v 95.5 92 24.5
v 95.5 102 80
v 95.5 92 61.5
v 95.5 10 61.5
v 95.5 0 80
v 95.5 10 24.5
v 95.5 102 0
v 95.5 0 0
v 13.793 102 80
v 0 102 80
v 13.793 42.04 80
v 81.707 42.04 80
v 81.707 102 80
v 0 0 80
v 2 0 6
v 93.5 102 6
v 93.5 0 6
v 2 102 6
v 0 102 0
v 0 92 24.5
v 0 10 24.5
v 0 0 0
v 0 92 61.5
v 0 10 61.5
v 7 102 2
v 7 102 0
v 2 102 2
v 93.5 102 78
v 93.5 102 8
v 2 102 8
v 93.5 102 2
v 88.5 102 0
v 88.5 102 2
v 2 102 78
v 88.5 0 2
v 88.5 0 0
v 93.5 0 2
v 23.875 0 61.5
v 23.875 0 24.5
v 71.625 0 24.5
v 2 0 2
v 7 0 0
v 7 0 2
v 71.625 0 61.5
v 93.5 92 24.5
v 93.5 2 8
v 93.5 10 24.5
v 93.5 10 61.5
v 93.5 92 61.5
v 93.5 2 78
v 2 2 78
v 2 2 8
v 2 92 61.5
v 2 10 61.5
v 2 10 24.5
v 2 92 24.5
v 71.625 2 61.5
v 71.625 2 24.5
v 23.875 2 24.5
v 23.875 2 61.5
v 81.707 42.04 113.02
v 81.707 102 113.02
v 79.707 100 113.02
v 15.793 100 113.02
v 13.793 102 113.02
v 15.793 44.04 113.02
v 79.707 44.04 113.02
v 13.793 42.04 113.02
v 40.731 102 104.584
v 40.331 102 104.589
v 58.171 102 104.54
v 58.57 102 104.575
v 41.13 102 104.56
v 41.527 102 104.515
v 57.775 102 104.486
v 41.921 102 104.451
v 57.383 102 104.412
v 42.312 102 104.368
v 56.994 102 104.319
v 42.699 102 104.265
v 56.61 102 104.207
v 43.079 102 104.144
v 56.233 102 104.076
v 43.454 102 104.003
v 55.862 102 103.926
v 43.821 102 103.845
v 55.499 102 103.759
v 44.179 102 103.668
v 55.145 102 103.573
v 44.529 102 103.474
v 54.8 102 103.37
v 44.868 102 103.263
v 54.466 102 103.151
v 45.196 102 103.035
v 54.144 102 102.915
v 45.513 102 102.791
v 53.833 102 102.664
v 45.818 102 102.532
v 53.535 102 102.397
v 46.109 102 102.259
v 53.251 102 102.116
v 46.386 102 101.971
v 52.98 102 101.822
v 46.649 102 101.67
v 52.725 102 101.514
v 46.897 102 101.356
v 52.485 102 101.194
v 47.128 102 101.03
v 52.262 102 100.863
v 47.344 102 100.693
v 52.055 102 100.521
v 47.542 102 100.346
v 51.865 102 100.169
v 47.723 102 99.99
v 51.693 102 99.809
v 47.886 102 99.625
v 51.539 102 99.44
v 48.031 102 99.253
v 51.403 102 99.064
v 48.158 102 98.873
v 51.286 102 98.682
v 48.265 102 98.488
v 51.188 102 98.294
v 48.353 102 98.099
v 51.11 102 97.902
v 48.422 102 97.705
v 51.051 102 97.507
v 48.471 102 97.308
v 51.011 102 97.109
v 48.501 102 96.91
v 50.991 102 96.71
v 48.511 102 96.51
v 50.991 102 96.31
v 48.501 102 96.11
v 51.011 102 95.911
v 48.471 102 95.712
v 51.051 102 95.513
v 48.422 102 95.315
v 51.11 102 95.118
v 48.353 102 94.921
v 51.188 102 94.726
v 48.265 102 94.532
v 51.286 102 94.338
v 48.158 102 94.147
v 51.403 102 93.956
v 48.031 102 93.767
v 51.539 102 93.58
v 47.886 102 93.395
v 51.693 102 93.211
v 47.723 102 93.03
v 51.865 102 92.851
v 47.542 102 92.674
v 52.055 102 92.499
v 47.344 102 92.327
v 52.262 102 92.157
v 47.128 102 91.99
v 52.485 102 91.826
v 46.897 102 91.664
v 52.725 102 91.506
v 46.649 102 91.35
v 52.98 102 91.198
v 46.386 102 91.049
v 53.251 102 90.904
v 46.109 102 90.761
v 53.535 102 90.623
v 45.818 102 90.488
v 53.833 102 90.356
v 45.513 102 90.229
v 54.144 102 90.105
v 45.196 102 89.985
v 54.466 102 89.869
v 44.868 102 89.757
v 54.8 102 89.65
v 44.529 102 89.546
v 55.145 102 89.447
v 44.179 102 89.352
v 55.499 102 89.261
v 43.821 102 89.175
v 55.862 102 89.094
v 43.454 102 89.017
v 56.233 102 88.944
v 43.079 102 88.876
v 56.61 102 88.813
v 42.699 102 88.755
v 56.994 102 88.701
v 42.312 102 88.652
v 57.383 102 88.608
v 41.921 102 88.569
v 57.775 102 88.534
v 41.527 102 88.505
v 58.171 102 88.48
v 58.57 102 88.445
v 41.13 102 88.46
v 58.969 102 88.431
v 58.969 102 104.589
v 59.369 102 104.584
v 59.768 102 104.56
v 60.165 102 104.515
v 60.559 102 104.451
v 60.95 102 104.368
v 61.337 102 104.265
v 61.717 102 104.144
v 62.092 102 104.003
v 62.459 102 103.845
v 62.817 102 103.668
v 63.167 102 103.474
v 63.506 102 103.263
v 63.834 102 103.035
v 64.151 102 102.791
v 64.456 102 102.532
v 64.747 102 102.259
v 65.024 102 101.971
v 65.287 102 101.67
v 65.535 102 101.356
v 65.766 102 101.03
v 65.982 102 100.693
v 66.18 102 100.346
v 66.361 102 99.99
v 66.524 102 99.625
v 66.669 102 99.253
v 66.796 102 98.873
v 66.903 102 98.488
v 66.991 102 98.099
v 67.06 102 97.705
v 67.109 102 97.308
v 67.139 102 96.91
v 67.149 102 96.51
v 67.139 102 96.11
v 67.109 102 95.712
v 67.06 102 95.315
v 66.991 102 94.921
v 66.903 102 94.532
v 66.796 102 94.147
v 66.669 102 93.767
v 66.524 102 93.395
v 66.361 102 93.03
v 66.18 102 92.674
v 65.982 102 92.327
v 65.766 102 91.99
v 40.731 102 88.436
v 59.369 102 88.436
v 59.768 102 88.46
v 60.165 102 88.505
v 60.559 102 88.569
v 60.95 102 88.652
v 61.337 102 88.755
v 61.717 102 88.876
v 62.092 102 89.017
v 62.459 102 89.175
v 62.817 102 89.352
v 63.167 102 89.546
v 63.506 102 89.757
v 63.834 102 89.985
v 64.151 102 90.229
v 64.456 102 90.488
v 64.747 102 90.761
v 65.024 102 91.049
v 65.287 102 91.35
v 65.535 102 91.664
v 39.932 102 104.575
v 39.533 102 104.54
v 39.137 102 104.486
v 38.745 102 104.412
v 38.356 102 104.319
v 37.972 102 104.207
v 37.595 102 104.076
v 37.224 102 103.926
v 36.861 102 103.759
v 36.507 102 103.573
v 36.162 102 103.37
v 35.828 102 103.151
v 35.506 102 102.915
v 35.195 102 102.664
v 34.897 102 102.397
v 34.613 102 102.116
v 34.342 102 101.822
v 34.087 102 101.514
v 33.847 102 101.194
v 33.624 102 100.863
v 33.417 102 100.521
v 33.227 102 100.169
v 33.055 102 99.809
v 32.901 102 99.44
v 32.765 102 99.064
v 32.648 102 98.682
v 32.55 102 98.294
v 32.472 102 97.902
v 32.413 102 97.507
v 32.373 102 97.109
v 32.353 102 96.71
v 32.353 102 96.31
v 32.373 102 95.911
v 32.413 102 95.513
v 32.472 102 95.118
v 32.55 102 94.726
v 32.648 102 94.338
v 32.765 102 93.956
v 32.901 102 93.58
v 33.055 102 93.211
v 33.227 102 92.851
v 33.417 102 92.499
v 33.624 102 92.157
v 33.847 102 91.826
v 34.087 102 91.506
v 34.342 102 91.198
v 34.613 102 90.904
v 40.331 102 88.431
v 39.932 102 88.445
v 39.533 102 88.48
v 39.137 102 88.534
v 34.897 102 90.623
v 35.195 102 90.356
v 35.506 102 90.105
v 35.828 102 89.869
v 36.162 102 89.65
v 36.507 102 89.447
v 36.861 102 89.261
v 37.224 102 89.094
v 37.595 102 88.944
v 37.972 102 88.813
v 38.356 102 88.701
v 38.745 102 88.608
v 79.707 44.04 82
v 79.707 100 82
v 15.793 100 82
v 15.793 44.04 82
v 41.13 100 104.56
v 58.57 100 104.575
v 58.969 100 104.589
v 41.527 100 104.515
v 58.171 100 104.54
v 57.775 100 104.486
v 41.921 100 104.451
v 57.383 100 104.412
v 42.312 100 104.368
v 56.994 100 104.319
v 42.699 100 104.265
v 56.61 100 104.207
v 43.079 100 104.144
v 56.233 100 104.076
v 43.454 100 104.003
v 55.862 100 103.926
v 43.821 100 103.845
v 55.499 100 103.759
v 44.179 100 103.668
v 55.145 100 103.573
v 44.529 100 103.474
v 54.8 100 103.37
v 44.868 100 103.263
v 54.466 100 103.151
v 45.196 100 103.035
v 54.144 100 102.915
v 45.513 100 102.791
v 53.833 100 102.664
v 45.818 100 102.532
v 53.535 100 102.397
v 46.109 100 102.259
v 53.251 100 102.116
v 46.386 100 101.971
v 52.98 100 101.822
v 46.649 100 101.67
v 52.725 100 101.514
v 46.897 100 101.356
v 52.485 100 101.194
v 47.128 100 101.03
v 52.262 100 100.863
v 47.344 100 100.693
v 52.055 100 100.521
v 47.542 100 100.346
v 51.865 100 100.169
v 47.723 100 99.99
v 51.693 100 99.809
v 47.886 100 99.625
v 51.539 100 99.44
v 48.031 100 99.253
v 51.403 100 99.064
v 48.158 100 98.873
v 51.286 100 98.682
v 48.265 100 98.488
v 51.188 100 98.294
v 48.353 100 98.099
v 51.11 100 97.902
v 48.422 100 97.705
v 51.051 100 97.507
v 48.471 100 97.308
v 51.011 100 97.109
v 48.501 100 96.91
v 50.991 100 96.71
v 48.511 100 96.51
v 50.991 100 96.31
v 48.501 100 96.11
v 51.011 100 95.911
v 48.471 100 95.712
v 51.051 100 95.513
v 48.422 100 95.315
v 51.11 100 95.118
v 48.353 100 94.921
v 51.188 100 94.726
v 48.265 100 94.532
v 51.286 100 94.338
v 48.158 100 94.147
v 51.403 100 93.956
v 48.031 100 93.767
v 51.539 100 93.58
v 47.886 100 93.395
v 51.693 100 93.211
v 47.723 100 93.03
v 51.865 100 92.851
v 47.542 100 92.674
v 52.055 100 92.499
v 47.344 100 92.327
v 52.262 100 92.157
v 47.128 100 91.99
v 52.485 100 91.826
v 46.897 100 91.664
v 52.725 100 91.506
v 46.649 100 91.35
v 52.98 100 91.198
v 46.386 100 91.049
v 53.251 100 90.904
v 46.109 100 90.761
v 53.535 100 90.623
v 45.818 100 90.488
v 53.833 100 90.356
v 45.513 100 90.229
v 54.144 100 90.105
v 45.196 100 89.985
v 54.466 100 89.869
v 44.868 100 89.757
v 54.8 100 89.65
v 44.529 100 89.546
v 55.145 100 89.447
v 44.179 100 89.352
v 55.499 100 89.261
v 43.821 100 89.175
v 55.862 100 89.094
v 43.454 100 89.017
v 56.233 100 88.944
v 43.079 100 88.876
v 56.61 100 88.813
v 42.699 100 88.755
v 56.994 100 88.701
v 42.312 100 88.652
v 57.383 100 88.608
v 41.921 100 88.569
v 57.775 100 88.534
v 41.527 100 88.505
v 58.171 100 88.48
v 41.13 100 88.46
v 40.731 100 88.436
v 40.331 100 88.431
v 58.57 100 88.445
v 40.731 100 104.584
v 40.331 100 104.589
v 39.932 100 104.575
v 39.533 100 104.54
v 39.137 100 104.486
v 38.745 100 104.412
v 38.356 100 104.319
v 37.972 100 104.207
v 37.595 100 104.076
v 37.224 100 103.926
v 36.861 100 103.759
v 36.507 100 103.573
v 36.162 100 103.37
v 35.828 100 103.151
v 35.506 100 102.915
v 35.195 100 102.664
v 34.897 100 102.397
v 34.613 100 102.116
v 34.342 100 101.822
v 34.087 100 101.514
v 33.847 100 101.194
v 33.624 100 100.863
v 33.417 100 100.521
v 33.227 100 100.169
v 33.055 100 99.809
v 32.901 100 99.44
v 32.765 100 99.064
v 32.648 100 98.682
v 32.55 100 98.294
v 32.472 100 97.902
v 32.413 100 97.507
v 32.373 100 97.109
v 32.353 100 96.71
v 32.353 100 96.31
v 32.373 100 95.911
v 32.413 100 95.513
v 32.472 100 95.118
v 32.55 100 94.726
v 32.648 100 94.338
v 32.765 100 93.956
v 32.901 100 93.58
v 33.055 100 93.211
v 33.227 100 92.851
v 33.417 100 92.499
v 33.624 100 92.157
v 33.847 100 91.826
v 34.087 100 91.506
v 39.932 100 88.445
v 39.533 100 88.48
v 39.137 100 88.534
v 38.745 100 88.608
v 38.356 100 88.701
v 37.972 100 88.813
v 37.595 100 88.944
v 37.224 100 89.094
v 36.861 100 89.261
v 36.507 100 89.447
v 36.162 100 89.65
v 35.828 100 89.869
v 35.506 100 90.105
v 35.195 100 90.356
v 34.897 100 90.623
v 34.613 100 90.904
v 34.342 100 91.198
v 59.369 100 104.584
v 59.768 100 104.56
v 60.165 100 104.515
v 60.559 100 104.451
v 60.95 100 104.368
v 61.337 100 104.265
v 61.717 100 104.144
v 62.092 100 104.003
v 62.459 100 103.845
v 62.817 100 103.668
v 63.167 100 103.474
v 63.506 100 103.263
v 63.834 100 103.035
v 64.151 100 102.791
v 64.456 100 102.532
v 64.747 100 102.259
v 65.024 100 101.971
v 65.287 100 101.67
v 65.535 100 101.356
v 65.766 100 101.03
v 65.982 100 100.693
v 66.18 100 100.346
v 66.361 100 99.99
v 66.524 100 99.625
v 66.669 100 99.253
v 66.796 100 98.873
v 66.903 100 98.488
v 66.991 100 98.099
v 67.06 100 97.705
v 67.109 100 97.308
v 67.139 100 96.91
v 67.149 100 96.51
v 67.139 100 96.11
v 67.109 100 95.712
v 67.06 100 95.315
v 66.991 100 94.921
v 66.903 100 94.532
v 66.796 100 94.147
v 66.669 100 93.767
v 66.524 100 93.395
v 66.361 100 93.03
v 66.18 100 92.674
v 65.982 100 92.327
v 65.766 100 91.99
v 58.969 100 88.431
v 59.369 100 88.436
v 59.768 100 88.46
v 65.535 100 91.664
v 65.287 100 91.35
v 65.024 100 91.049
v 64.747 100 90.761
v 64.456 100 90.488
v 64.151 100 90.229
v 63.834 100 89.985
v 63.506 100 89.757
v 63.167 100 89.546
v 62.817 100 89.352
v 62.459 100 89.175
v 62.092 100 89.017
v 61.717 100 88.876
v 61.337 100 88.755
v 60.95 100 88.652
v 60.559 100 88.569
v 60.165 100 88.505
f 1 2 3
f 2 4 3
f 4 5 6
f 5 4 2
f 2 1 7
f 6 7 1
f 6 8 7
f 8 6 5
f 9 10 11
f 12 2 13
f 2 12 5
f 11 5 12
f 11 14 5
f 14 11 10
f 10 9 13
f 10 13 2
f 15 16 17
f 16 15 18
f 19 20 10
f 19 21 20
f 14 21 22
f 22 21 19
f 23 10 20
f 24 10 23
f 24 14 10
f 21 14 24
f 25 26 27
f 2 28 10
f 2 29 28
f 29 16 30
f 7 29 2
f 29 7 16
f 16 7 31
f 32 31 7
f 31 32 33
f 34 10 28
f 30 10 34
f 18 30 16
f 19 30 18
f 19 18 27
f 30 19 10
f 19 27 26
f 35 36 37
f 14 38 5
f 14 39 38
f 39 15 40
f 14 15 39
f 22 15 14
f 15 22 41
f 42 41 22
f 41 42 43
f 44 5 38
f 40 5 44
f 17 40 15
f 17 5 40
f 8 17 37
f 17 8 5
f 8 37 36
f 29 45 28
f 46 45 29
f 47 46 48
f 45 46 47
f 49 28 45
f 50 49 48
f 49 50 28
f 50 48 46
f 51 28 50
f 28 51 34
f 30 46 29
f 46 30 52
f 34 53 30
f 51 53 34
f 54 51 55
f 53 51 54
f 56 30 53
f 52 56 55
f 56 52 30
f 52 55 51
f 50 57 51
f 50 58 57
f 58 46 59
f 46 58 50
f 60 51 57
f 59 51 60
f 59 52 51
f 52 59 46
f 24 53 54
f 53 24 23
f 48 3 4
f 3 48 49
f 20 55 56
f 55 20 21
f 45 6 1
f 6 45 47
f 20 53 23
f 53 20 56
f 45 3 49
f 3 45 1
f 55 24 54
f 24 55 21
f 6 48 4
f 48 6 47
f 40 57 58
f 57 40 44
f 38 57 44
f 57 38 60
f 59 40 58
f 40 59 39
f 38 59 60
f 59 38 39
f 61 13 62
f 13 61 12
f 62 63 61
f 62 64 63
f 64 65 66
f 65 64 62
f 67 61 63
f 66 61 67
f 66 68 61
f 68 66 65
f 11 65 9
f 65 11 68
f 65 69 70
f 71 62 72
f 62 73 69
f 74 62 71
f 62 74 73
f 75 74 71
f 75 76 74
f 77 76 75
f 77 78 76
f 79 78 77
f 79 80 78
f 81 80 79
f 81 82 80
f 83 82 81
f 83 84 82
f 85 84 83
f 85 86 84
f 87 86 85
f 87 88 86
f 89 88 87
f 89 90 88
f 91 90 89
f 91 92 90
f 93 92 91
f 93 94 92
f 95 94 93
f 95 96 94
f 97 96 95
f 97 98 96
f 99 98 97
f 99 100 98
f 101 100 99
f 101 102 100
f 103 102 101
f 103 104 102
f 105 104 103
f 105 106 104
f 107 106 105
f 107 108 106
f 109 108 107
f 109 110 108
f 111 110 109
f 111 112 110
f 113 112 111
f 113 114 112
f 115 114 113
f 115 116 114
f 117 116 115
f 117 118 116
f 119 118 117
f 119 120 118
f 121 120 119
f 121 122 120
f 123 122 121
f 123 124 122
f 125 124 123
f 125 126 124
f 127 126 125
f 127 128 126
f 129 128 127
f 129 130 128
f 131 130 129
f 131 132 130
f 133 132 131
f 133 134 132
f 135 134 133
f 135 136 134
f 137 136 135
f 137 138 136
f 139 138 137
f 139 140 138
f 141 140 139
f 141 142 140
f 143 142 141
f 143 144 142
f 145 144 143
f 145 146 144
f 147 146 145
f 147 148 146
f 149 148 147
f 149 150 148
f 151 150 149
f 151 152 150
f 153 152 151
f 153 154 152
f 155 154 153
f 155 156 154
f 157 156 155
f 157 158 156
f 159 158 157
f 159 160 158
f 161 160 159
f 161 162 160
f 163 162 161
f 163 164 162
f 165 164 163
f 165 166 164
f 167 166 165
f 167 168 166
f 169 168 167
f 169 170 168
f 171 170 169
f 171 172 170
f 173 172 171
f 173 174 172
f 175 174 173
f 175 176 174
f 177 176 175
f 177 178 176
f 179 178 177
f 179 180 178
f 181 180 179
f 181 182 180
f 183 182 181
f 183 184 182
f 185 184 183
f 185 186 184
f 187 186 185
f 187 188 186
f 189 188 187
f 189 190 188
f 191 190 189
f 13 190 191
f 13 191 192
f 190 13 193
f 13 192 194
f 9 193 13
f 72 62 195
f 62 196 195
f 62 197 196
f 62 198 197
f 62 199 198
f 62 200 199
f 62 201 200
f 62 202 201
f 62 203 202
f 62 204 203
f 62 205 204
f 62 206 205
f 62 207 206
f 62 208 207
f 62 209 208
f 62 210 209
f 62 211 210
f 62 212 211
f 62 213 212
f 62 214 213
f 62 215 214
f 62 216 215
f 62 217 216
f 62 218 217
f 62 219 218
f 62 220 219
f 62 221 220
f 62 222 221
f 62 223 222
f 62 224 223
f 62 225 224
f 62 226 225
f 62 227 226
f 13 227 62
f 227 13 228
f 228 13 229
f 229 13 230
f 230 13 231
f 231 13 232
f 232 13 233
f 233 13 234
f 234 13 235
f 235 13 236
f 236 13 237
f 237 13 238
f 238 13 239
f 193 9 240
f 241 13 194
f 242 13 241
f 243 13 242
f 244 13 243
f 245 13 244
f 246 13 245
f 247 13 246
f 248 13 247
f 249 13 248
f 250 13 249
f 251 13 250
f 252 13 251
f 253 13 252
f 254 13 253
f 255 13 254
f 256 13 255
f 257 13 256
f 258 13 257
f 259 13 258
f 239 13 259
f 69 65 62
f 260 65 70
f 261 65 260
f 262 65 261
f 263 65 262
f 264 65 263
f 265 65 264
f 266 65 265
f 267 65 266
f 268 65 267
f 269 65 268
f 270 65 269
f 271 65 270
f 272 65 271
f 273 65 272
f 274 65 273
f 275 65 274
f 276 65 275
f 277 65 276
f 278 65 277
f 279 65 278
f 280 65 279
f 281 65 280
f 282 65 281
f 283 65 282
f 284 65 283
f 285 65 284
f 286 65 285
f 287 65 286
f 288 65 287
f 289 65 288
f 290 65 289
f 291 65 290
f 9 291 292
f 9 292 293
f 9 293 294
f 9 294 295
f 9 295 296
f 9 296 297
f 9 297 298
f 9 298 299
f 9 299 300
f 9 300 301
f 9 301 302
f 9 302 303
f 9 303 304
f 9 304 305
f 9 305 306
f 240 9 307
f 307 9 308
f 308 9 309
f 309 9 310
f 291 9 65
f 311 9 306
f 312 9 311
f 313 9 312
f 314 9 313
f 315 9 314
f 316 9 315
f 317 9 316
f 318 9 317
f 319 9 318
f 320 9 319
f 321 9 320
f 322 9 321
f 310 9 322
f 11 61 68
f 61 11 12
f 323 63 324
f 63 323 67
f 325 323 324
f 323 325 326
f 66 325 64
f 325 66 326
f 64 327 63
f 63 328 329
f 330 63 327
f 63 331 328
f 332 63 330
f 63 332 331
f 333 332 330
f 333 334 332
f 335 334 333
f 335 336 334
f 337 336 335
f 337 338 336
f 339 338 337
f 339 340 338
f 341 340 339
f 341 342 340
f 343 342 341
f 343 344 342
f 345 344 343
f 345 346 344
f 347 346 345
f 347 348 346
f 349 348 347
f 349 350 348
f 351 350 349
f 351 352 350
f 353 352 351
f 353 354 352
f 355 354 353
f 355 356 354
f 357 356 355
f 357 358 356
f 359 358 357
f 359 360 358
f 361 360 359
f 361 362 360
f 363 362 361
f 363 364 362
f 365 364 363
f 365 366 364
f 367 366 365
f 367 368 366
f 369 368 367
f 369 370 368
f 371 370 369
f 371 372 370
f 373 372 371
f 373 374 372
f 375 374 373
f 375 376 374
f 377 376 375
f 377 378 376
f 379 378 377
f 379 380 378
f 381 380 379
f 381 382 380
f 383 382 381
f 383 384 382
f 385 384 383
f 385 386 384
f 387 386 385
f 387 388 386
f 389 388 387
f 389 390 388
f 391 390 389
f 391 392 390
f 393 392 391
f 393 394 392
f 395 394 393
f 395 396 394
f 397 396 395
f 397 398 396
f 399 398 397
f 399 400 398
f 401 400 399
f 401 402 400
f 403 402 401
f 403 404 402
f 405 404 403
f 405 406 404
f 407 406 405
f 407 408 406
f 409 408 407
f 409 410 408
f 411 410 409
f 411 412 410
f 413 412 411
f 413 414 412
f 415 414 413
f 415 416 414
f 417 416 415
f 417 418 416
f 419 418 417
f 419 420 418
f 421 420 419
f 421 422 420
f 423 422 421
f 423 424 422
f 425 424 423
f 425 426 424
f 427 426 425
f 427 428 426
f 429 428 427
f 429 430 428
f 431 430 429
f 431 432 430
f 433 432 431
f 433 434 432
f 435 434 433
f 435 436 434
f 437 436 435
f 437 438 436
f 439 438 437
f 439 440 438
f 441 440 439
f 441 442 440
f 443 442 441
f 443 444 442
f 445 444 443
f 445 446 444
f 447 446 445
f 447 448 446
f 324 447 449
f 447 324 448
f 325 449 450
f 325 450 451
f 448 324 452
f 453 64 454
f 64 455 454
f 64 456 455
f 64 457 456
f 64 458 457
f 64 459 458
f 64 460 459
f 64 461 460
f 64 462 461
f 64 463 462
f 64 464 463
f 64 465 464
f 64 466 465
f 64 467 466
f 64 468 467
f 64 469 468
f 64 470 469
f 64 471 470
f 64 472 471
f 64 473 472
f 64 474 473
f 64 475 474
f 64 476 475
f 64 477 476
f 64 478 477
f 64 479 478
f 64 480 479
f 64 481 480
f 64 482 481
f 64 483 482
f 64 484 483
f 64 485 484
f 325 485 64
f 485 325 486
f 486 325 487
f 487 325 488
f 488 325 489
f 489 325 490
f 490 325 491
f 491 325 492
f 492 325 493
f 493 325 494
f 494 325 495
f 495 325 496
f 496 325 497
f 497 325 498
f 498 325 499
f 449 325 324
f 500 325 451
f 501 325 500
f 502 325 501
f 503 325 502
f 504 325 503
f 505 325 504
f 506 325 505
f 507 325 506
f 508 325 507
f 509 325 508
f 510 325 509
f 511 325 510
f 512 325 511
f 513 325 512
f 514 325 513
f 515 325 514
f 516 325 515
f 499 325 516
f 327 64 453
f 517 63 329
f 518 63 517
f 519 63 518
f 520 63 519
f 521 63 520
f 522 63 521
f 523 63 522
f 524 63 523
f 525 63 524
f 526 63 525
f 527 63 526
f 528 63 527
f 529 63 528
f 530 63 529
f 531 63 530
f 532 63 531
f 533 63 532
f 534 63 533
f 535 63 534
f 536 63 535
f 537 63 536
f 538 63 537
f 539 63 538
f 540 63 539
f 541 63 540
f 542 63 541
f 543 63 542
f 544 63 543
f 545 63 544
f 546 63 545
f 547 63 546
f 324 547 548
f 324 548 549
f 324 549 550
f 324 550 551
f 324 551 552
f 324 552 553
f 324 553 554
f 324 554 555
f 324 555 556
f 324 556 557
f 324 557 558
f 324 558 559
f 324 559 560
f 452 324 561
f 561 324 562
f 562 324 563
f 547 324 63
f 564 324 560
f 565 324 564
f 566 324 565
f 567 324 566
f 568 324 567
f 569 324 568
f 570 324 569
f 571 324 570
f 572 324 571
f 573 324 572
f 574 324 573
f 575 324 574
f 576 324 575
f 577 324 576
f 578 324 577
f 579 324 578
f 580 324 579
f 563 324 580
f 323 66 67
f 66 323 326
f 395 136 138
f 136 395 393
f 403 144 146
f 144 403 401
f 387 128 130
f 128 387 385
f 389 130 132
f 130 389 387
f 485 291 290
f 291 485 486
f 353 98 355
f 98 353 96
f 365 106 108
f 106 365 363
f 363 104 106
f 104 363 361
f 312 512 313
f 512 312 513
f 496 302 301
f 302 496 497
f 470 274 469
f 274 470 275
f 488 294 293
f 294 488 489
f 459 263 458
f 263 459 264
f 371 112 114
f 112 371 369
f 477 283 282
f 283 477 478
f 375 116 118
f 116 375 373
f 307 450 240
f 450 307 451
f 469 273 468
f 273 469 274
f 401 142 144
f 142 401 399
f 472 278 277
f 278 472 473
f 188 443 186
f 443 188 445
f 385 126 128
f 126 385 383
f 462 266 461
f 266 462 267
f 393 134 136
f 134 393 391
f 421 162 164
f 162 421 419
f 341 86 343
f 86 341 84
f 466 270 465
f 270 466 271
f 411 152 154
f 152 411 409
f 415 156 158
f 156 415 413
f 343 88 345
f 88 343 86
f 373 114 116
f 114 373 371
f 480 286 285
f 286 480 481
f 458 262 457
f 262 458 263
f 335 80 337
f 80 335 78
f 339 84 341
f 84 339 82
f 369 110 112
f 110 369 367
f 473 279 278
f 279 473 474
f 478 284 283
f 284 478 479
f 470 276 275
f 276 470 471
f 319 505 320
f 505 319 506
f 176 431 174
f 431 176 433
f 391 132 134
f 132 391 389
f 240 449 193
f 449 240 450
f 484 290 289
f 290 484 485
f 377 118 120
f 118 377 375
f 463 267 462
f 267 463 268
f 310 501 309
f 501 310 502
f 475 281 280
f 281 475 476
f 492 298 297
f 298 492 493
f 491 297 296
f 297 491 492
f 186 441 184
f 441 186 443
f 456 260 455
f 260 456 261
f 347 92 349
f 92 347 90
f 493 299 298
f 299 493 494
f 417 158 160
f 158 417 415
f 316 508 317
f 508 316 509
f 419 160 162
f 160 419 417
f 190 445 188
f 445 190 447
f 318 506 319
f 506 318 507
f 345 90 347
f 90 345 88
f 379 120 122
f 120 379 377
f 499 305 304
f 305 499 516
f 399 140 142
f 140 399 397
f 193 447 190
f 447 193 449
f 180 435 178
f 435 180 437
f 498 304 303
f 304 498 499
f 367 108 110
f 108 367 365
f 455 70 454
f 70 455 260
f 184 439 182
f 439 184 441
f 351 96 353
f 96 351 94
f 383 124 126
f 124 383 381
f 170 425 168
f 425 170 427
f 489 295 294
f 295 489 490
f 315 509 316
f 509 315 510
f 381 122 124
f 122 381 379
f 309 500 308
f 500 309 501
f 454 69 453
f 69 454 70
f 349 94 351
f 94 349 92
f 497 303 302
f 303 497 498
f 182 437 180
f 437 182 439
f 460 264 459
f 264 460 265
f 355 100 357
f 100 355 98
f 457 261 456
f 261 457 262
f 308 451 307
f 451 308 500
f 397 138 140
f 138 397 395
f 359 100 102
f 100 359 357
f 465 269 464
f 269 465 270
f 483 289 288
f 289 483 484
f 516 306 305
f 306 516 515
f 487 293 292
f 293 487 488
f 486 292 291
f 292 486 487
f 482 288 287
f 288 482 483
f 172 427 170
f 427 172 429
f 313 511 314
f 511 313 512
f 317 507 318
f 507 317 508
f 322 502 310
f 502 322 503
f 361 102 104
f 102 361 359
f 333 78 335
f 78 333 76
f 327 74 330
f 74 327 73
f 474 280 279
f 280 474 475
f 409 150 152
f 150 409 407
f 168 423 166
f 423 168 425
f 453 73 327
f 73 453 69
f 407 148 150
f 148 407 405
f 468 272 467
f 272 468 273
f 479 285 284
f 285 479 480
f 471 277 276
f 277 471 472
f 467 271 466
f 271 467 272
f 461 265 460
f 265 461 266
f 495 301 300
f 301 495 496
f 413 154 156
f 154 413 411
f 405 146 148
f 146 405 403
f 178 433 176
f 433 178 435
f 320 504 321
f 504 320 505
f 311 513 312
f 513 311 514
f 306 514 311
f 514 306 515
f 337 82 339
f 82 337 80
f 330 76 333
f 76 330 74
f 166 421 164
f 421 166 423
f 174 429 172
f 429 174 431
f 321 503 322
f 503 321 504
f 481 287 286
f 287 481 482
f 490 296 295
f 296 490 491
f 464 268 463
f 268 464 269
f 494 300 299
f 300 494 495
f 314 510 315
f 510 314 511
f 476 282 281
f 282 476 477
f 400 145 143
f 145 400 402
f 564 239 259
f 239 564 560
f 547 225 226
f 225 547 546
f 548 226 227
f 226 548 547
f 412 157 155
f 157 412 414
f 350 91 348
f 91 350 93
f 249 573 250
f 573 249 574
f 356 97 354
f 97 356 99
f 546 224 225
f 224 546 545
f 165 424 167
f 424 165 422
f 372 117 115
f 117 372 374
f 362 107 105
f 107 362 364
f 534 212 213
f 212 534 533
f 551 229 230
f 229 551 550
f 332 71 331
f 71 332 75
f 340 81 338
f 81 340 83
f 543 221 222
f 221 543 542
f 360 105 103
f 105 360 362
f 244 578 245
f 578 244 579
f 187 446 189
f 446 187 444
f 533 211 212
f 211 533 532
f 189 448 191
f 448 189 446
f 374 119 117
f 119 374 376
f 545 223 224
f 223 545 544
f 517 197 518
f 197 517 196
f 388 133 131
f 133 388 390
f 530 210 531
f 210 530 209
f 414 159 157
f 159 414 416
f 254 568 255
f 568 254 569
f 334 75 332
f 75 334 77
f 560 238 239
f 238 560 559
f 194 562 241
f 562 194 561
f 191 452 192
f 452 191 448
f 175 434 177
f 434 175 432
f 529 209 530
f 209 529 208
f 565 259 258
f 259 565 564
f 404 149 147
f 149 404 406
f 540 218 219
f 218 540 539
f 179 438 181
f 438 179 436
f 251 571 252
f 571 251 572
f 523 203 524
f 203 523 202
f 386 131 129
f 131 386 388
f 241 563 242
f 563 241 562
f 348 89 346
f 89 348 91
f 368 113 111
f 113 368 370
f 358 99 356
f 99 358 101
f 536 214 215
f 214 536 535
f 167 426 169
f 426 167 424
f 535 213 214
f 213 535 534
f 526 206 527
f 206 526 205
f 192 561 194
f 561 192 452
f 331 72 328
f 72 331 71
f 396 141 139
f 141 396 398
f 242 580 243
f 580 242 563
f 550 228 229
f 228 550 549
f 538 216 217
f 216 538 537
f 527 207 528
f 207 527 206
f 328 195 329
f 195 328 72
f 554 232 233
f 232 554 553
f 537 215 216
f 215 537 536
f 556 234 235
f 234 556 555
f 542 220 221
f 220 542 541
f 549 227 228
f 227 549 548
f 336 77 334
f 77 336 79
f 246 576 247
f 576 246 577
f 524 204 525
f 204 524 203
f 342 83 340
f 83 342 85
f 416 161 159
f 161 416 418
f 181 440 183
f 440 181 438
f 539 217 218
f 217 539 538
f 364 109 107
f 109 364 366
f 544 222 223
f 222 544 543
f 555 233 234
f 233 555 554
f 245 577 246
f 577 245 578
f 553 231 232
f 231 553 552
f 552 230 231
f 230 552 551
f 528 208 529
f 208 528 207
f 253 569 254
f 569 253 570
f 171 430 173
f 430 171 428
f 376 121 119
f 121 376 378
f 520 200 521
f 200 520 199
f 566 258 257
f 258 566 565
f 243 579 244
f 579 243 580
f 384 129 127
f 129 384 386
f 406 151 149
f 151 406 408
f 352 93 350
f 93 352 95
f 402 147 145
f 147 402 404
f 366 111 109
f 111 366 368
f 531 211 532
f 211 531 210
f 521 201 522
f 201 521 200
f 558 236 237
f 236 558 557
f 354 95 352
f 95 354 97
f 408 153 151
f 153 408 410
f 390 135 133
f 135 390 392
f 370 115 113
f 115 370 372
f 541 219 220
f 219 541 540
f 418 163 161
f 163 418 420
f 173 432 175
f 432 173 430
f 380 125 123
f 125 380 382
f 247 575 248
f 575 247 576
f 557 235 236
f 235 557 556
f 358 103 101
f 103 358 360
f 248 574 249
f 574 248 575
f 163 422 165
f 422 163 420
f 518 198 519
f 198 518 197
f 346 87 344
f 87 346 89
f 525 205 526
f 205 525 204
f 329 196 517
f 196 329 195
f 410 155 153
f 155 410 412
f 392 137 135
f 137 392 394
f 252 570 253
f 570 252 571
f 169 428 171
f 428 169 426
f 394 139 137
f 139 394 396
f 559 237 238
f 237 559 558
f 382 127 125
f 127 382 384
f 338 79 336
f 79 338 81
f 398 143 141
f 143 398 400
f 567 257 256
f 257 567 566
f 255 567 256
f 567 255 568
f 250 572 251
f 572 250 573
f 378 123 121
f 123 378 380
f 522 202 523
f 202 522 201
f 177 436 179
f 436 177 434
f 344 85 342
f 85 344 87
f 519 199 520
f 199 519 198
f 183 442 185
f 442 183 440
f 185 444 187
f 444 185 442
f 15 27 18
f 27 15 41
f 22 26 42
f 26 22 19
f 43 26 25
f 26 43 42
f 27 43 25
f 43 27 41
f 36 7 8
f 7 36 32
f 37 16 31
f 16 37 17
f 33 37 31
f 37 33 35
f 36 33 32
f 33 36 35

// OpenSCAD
// file: engine_holders.scad
$fa=1;
$fs=0.4;

////////////////////////////////////////////////
module engine_holder_cutouts() {
    translate([-.03, 1,-.10])
    cube([.11, .45, .4 ]);

    translate([.73, 1,-.10])
    cube([.11, .45, .4 ]);

    translate([1.88,0,-.10])
    rotate([0,0,90])
    cube([.15, 1.9, .4]);
}
engine_holder_cutouts();
// file: robot_rail.scad
include <robot_settings.scad>
use <engine_holders.scad>

module robot_rail() {
    // rail
    translate([rail_gap, 0, rail_gap])
    cube([main_box_x - rail_gap * wall_thickness, rail_length, rail_thickness]);
}

translate([-20, 0, 0])
engine_holder_cutouts();
robot_rail();
// file: support_angle.scad
module support_angle(length = 150, width = 10, rot_vec = [90,0,0]) {
    rotate(rot_vec)
    difference() {
        cube([width, length, 4]);
        
        translate([10,-10,-1])
        rotate([0,0,45])
        cube([10, 30, 6]);
        
        translate([-10,length - 10,-1])
        rotate([0,0,-45])
        cube([10, 30, 6]);
    }
}
support_angle();
// file: robot_settings.scad
main_box_x = 95.5; // 96
main_box_y = 102;
main_box_z = 74; // 74.5
wall_thickness = 2;

rail_gap = 2;
rail_inset = 7;

rail_thickness = 3.9;
rail_length = 200;
// file: tobsun_parts.scad
$fa=1;
$fs=0.4;

////////////////////////////////////////////////
tobsun_shelf_width = 67.914;
tobsun_shelf_length = 59.96;
tobsun_shelf_height = 33.02;

cutout_radius = 8.08;
wall_thickness = 2;

module tobsun_tray() {
    difference() {
        translate([0, 0, 0])
        cube([tobsun_shelf_width, tobsun_shelf_length, tobsun_shelf_height]);
        
        // cut out
        translate([wall_thickness, wall_thickness, wall_thickness])
        cube([tobsun_shelf_width - 2 * wall_thickness, tobsun_shelf_length - 2 * wall_thickness, tobsun_shelf_height]);
        
        // tobsun tray wire cutout
        translate([tobsun_shelf_width / 3 + 4, tobsun_shelf_length + wall_thickness, tobsun_shelf_height / 2])
        rotate([90,0,0])
        cylinder(h=4 * wall_thickness, r=cutout_radius);
        
        // tobsun tray wire cutout
        translate([tobsun_shelf_width * 2/3, tobsun_shelf_length + wall_thickness, tobsun_shelf_height / 2])
        rotate([90,0,0])
        cylinder(h=4 * wall_thickness, r=cutout_radius);
    }
}
//tobsun_tray();

////////////////////////////////////////////////
module tobsun_chassis_cutout() {
    tobsun_chassis_cutout_width = 73.914;
    tobsun_chassis_cutout_length = 71.12;
    tobsun_chassis_cutout_height = 35.56;
    
    // tobsun chassis shelf cutout
    translate([0,0,0])
    cube([tobsun_chassis_cutout_width,tobsun_chassis_cutout_length,tobsun_chassis_cutout_height]);
    
    // tobsun chassis wire cutout left
    translate([60.96,22.86,12.7])
    rotate([0,90,0])
    cylinder(h=1, r=.2);

    // tobsun chassis wire cutout right
    translate([-12.7,22.86,12.7])
    rotate([0,90,0])
    cylinder(h=1, r=.2);
}
//tobsun_chassis_cutout();
// main file
include <tobsun_parts.scad>
include <robot_settings.scad>
use <support_angle.scad>
use <robot_rail.scad>

translate([0,0,6])
difference() {
    // battery box
    cube([main_box_x, main_box_y, main_box_z]);

    // battery box cutout    
    translate([wall_thickness, wall_thickness, wall_thickness])
    cube([main_box_x - 2 * wall_thickness, main_box_y + wall_thickness, main_box_z - 2 * wall_thickness]);

    // side windows
    translate([-wall_thickness, wall_thickness + 4 * wall_thickness, main_box_z / 4])
    cube([main_box_x + 2 * wall_thickness, main_box_y - 10 * wall_thickness, main_box_z / 2]);

    // back window
    translate([main_box_x / 4, -wall_thickness, main_box_z / 4])
    cube([main_box_x / 2, 4 * wall_thickness, main_box_z / 2]);
}

// tobsun
translate([main_box_x / 2 - tobsun_shelf_width / 2, main_box_y - tobsun_shelf_length, main_box_z + rail_gap + 2 * wall_thickness])
tobsun_tray();

// rail attachments
translate([0, 0, 0])
cube([rail_gap, main_box_y, rail_inset]);
cube([rail_inset, main_box_y, rail_gap]);

translate([main_box_x - rail_gap, 0, 0]) 
cube([rail_gap, main_box_y, rail_inset]);
translate([main_box_x - rail_inset, 0 ,0])
cube([rail_inset, main_box_y, rail_gap]);
